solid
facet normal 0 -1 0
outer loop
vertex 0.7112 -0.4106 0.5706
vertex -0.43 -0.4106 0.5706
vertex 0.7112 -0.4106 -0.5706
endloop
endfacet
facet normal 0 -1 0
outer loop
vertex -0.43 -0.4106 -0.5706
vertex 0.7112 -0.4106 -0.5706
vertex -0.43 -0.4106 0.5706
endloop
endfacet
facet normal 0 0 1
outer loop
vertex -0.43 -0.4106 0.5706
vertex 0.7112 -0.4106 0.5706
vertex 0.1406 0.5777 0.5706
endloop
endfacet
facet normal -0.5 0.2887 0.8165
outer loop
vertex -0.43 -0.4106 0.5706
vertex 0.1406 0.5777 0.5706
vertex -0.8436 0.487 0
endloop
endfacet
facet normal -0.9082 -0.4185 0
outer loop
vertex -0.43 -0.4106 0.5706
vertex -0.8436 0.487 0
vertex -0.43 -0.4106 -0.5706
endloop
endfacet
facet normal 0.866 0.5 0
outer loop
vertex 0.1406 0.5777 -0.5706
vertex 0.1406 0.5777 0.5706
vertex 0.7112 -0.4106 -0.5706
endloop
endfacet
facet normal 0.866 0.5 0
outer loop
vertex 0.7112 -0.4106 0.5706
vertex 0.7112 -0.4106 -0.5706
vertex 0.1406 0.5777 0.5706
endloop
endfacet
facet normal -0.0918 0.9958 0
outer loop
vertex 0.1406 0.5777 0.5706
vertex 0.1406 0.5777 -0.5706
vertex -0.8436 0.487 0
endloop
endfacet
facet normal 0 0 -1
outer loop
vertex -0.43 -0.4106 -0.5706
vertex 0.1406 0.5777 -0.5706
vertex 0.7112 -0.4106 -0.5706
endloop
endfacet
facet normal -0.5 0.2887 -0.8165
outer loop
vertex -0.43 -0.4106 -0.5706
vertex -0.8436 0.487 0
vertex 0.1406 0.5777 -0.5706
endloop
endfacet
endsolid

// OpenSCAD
polyhedron( points = [[-0.430013985748416, -0.41061160656517, 0.570607075226795], [0.140593089526667, 0.577708838901237, 0.570607075226795], [0.711200164683424, -0.41061160656517, 0.570607075226795], [-0.430013985697179, -0.410611606535589, -0.570607075205046], [0.140593089526669, 0.577708838842078, -0.570607075205046], [0.711200164683424, -0.410611606535589, -0.570607075256286], [-0.843558536974589, 0.487028748458203, -1.40063295059654e-11]], faces = [[0, 3, 5, 2], [0, 2, 1], [0, 1, 6], [0, 6, 3], [1, 2, 5, 4], [1, 4, 6], [3, 4, 5], [3, 6, 4]]);
